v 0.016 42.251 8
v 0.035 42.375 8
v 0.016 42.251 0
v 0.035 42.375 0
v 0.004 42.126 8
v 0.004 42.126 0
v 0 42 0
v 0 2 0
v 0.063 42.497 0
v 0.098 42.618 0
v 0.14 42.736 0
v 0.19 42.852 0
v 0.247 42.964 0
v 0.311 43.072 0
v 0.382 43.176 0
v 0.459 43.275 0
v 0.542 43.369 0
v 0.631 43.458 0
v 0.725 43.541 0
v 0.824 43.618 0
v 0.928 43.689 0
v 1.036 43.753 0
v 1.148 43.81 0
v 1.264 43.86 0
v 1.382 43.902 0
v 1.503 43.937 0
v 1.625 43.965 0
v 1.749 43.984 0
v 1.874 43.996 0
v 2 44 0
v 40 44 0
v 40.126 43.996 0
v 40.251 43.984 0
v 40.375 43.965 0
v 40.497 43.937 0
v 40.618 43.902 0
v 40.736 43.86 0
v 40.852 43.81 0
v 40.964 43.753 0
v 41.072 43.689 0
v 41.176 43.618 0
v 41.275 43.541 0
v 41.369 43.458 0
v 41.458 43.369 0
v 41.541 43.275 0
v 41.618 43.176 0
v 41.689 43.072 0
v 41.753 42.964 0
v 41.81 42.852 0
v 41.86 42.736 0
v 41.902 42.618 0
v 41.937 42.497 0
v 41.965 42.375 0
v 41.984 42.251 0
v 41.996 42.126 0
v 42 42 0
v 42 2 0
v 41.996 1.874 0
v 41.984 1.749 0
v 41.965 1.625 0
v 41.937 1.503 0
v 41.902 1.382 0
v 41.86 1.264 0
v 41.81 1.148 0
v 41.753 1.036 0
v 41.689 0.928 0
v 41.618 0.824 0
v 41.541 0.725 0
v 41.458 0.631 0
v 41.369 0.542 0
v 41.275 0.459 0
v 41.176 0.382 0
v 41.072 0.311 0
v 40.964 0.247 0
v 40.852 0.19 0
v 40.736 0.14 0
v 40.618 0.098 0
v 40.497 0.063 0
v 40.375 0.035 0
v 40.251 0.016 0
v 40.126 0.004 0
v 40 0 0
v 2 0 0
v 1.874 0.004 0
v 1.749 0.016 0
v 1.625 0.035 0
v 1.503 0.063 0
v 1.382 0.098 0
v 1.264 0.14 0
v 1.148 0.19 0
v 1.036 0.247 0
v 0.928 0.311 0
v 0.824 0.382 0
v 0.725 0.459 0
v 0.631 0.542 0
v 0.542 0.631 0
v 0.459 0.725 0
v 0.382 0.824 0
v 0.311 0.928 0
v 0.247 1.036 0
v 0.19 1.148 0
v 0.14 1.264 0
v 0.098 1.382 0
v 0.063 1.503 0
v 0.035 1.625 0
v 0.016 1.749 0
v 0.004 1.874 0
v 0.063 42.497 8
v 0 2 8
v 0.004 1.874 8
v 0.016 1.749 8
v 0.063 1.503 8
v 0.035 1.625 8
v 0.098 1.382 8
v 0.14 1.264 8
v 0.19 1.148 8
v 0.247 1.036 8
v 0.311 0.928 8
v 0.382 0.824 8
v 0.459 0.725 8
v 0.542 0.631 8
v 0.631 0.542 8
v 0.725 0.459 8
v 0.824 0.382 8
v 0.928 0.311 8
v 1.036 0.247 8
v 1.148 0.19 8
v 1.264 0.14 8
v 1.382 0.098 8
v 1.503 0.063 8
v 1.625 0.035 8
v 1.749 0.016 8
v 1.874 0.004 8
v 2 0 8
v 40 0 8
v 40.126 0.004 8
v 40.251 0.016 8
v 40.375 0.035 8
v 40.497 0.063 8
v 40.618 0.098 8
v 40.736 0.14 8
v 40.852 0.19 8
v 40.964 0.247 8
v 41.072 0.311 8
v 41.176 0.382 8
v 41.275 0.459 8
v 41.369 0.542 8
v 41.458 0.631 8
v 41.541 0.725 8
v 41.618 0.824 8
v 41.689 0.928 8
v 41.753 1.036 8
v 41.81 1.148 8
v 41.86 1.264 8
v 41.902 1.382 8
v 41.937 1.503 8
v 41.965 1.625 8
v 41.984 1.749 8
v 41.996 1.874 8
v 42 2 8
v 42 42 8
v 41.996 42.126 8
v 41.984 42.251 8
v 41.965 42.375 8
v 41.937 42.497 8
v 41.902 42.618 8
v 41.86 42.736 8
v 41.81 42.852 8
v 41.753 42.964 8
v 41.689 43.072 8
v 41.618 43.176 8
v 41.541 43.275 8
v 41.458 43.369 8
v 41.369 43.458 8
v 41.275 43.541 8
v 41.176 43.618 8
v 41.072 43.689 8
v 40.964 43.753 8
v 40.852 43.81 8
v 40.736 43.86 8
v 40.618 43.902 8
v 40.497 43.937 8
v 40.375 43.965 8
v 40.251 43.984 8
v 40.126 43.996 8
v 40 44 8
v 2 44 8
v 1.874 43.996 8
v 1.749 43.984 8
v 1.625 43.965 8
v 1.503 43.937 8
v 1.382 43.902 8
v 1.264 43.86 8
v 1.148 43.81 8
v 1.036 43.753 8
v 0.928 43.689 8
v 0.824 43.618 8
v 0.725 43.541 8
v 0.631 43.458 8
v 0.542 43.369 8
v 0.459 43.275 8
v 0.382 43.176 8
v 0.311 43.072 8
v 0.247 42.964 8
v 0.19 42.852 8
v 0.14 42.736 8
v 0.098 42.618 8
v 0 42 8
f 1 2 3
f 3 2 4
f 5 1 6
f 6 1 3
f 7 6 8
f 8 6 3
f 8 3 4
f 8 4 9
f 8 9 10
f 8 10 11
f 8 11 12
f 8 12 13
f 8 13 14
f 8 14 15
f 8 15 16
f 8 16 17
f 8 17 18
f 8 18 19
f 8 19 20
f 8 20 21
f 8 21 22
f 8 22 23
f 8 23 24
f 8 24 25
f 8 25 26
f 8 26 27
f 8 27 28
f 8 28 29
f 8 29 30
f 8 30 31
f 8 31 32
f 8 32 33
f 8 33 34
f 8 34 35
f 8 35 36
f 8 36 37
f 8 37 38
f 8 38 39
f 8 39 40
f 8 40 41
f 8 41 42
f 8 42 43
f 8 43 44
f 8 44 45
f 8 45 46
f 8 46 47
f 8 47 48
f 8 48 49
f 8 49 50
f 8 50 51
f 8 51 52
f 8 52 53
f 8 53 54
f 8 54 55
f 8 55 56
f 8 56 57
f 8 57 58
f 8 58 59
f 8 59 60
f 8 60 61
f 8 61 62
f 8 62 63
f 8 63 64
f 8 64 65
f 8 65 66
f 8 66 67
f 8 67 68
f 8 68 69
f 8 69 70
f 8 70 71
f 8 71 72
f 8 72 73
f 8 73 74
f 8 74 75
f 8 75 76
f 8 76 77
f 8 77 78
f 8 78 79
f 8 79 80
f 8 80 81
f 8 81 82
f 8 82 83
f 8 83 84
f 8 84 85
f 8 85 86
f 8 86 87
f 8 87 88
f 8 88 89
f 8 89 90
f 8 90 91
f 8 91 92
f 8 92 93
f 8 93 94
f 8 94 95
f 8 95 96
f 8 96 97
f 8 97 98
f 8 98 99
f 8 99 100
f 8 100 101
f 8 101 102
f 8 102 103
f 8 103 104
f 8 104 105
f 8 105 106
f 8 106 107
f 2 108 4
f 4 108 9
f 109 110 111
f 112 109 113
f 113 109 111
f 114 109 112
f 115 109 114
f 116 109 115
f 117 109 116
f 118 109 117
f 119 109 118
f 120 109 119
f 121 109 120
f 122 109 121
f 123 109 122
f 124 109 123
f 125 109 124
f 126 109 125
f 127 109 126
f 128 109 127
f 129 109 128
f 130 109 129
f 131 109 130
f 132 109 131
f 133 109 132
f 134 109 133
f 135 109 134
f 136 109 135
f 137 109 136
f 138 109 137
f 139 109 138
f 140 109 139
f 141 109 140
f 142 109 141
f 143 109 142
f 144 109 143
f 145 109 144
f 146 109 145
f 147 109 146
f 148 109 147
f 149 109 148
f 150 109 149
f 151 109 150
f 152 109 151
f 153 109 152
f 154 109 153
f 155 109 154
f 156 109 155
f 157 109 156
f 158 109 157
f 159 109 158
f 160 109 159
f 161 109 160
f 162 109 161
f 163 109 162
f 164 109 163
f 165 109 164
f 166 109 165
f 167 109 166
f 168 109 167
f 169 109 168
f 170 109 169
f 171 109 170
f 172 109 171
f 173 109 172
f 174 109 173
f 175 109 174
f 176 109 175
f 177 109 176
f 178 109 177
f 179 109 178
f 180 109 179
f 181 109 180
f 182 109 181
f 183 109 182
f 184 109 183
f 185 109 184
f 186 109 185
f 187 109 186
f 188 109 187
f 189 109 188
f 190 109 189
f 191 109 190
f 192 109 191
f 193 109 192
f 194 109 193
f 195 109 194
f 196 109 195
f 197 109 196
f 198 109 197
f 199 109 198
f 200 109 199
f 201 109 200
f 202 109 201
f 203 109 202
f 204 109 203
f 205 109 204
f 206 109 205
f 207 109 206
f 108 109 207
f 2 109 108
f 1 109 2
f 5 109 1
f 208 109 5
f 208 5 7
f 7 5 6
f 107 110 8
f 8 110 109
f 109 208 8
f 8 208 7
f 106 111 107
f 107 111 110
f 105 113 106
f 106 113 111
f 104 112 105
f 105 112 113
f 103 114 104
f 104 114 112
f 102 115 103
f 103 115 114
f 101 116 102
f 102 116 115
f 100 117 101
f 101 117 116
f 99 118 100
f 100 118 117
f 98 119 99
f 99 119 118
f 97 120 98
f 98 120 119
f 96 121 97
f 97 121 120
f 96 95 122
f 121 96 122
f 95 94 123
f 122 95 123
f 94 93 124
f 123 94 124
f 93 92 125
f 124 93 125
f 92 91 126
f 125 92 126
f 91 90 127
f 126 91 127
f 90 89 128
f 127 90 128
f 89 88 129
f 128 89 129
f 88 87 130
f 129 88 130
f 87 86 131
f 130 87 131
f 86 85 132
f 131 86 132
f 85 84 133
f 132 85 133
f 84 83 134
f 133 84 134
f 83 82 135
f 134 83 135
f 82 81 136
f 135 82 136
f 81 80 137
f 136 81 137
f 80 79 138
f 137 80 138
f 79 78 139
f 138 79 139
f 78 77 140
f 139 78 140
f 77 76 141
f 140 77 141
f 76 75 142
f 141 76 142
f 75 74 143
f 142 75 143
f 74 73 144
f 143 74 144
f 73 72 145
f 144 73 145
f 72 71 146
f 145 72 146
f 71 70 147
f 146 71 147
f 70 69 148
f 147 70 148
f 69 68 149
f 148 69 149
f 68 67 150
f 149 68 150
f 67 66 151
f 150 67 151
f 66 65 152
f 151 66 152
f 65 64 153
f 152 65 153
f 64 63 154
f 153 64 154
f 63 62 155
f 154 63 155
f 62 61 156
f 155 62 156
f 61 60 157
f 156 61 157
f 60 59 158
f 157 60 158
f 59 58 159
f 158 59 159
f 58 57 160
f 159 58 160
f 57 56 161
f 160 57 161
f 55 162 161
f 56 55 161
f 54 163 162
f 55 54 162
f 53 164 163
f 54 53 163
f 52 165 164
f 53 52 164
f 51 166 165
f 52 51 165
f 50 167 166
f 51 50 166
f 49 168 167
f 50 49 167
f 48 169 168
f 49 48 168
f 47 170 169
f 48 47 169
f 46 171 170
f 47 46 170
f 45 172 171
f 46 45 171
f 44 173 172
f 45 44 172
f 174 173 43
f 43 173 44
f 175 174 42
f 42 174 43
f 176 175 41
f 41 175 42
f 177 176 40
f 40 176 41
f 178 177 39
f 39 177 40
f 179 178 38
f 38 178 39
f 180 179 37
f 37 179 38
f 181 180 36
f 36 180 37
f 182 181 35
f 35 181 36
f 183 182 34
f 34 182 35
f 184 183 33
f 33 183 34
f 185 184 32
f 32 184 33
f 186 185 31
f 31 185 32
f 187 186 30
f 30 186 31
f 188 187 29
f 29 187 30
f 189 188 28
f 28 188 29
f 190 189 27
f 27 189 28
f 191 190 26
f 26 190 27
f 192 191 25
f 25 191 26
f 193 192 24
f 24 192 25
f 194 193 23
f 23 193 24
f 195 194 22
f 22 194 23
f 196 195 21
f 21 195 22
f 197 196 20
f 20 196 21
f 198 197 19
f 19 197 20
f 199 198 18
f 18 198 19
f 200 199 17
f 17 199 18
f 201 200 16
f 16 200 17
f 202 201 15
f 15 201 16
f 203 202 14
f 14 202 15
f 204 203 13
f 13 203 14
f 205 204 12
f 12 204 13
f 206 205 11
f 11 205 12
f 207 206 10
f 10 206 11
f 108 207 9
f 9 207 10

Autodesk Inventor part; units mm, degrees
ref_plane "YZ Plane" through (0, 0, 0) normal (1, 0, 0) x (0, 1, 0)
ref_plane "XZ Plane" through (0, 0, 0) normal (0, 1, 0) x (-1, 0, 0)
ref_plane "XY Plane" through (0, 0, 0) normal (0, 0, 1) x (1, 0, 0)
sketch "Sketch1" plane through (0, 0, 0) normal (0, 0, 1) x (1, 0, 0)
  line L0 (0, 0) -> (42, 0)
  line L1 (42, 0) -> (42, 44)
  line L2 (42, 44) -> (0, 44)
  line L3 (0, 44) -> (0, 0)
  dimension "d0" = 42
  dimension "d1" = 44
extrude "Extrusion1" add sketch "Sketch1" along normal blind 8
fillet "Fillet1" radius 2 1 edges at (42, 0, 4)
fillet "Fillet2" radius 2 1 edges at (42, 44, 4)
fillet "Fillet3" radius 2 1 edges at (0, 0, 4)
fillet "Fillet4" radius 2 1 edges at (0, 44, 4)
sketch "Sketch2" plane through (0, 0, 0) normal (0, 0, 1) x (1, 0, 0)
  point P0 (0, 0)
equation "\"d0\" = wallw"
equation "\"d1\" = wallh"
equation "\"d4\" = cornerrad"
equation "\"d5\" = cornerrad"
equation "\"d6\" = cornerrad"
equation "\"d7\" = cornerrad"
equation "\"printer3dtolerance\" = 0.1"
equation "\"wallw\" = 42"
equation "\"wallh\" = 44"
equation "\"cornerrad\" = 2"
equation "\"baseextra\" = 2"
equation "\"wall1_thick\" = 8"
equation "\"wall2_thick\" = 6.4"
equation "\"wall3_thick\" = 4"
equation "\"wall1slot\" = 8.1"
equation "\"wall2slot\" = 6.5"
equation "\"wall3slot\" = 4.1"
equation "\"gap2\" = 28"
equation "\"baseh\" = 79"
equation "\"basew\" = 44"
equation "\"base_thick\" = 6"
equation "\"base_slots_depth\" = 4"
equation "\"servosmallcircledia\" = 5.9"
equation "\"servomounth\" = 4"
equation "\"servobigcircledia\" = 11.6"
equation "\"servomountsquare\" = 4"
equation "\"distancefrombottom\" = 34"
equation "\"servopolygonr\" = 6.1"
equation "\"distancefromleft\" = 22"
equation "\"servo9gw\" = 22.8"
equation "\"servopolygonl\" = 5.9"
equation "\"wall3slotd\" = 2"
equation "\"adapterw\" = 32"
equation "\"wall3slotd_1\" = 2"
equation "\"wall3slotw\" = 36"
equation "\"adapterh\" = 16"
equation "\"armslotd\" = 2"
equation "\"armthick\" = 3"
equation "\"armw\" = 34"
equation "\"fanhs\" = 9.6"
equation "\"fanhb\" = 11"
equation "\"adapterwallslotd\" = 2"
equation "\"adapterwallthick\" = 6"
equation "\"hornscrewholed\" = 2"
equation "\"hornscrewheadd\" = 3"
equation "\"hornthick\" = 1.5"
equation "\"armhornthick\" = 3"
properties part number "wall-front" material "Wood (Oak)"
